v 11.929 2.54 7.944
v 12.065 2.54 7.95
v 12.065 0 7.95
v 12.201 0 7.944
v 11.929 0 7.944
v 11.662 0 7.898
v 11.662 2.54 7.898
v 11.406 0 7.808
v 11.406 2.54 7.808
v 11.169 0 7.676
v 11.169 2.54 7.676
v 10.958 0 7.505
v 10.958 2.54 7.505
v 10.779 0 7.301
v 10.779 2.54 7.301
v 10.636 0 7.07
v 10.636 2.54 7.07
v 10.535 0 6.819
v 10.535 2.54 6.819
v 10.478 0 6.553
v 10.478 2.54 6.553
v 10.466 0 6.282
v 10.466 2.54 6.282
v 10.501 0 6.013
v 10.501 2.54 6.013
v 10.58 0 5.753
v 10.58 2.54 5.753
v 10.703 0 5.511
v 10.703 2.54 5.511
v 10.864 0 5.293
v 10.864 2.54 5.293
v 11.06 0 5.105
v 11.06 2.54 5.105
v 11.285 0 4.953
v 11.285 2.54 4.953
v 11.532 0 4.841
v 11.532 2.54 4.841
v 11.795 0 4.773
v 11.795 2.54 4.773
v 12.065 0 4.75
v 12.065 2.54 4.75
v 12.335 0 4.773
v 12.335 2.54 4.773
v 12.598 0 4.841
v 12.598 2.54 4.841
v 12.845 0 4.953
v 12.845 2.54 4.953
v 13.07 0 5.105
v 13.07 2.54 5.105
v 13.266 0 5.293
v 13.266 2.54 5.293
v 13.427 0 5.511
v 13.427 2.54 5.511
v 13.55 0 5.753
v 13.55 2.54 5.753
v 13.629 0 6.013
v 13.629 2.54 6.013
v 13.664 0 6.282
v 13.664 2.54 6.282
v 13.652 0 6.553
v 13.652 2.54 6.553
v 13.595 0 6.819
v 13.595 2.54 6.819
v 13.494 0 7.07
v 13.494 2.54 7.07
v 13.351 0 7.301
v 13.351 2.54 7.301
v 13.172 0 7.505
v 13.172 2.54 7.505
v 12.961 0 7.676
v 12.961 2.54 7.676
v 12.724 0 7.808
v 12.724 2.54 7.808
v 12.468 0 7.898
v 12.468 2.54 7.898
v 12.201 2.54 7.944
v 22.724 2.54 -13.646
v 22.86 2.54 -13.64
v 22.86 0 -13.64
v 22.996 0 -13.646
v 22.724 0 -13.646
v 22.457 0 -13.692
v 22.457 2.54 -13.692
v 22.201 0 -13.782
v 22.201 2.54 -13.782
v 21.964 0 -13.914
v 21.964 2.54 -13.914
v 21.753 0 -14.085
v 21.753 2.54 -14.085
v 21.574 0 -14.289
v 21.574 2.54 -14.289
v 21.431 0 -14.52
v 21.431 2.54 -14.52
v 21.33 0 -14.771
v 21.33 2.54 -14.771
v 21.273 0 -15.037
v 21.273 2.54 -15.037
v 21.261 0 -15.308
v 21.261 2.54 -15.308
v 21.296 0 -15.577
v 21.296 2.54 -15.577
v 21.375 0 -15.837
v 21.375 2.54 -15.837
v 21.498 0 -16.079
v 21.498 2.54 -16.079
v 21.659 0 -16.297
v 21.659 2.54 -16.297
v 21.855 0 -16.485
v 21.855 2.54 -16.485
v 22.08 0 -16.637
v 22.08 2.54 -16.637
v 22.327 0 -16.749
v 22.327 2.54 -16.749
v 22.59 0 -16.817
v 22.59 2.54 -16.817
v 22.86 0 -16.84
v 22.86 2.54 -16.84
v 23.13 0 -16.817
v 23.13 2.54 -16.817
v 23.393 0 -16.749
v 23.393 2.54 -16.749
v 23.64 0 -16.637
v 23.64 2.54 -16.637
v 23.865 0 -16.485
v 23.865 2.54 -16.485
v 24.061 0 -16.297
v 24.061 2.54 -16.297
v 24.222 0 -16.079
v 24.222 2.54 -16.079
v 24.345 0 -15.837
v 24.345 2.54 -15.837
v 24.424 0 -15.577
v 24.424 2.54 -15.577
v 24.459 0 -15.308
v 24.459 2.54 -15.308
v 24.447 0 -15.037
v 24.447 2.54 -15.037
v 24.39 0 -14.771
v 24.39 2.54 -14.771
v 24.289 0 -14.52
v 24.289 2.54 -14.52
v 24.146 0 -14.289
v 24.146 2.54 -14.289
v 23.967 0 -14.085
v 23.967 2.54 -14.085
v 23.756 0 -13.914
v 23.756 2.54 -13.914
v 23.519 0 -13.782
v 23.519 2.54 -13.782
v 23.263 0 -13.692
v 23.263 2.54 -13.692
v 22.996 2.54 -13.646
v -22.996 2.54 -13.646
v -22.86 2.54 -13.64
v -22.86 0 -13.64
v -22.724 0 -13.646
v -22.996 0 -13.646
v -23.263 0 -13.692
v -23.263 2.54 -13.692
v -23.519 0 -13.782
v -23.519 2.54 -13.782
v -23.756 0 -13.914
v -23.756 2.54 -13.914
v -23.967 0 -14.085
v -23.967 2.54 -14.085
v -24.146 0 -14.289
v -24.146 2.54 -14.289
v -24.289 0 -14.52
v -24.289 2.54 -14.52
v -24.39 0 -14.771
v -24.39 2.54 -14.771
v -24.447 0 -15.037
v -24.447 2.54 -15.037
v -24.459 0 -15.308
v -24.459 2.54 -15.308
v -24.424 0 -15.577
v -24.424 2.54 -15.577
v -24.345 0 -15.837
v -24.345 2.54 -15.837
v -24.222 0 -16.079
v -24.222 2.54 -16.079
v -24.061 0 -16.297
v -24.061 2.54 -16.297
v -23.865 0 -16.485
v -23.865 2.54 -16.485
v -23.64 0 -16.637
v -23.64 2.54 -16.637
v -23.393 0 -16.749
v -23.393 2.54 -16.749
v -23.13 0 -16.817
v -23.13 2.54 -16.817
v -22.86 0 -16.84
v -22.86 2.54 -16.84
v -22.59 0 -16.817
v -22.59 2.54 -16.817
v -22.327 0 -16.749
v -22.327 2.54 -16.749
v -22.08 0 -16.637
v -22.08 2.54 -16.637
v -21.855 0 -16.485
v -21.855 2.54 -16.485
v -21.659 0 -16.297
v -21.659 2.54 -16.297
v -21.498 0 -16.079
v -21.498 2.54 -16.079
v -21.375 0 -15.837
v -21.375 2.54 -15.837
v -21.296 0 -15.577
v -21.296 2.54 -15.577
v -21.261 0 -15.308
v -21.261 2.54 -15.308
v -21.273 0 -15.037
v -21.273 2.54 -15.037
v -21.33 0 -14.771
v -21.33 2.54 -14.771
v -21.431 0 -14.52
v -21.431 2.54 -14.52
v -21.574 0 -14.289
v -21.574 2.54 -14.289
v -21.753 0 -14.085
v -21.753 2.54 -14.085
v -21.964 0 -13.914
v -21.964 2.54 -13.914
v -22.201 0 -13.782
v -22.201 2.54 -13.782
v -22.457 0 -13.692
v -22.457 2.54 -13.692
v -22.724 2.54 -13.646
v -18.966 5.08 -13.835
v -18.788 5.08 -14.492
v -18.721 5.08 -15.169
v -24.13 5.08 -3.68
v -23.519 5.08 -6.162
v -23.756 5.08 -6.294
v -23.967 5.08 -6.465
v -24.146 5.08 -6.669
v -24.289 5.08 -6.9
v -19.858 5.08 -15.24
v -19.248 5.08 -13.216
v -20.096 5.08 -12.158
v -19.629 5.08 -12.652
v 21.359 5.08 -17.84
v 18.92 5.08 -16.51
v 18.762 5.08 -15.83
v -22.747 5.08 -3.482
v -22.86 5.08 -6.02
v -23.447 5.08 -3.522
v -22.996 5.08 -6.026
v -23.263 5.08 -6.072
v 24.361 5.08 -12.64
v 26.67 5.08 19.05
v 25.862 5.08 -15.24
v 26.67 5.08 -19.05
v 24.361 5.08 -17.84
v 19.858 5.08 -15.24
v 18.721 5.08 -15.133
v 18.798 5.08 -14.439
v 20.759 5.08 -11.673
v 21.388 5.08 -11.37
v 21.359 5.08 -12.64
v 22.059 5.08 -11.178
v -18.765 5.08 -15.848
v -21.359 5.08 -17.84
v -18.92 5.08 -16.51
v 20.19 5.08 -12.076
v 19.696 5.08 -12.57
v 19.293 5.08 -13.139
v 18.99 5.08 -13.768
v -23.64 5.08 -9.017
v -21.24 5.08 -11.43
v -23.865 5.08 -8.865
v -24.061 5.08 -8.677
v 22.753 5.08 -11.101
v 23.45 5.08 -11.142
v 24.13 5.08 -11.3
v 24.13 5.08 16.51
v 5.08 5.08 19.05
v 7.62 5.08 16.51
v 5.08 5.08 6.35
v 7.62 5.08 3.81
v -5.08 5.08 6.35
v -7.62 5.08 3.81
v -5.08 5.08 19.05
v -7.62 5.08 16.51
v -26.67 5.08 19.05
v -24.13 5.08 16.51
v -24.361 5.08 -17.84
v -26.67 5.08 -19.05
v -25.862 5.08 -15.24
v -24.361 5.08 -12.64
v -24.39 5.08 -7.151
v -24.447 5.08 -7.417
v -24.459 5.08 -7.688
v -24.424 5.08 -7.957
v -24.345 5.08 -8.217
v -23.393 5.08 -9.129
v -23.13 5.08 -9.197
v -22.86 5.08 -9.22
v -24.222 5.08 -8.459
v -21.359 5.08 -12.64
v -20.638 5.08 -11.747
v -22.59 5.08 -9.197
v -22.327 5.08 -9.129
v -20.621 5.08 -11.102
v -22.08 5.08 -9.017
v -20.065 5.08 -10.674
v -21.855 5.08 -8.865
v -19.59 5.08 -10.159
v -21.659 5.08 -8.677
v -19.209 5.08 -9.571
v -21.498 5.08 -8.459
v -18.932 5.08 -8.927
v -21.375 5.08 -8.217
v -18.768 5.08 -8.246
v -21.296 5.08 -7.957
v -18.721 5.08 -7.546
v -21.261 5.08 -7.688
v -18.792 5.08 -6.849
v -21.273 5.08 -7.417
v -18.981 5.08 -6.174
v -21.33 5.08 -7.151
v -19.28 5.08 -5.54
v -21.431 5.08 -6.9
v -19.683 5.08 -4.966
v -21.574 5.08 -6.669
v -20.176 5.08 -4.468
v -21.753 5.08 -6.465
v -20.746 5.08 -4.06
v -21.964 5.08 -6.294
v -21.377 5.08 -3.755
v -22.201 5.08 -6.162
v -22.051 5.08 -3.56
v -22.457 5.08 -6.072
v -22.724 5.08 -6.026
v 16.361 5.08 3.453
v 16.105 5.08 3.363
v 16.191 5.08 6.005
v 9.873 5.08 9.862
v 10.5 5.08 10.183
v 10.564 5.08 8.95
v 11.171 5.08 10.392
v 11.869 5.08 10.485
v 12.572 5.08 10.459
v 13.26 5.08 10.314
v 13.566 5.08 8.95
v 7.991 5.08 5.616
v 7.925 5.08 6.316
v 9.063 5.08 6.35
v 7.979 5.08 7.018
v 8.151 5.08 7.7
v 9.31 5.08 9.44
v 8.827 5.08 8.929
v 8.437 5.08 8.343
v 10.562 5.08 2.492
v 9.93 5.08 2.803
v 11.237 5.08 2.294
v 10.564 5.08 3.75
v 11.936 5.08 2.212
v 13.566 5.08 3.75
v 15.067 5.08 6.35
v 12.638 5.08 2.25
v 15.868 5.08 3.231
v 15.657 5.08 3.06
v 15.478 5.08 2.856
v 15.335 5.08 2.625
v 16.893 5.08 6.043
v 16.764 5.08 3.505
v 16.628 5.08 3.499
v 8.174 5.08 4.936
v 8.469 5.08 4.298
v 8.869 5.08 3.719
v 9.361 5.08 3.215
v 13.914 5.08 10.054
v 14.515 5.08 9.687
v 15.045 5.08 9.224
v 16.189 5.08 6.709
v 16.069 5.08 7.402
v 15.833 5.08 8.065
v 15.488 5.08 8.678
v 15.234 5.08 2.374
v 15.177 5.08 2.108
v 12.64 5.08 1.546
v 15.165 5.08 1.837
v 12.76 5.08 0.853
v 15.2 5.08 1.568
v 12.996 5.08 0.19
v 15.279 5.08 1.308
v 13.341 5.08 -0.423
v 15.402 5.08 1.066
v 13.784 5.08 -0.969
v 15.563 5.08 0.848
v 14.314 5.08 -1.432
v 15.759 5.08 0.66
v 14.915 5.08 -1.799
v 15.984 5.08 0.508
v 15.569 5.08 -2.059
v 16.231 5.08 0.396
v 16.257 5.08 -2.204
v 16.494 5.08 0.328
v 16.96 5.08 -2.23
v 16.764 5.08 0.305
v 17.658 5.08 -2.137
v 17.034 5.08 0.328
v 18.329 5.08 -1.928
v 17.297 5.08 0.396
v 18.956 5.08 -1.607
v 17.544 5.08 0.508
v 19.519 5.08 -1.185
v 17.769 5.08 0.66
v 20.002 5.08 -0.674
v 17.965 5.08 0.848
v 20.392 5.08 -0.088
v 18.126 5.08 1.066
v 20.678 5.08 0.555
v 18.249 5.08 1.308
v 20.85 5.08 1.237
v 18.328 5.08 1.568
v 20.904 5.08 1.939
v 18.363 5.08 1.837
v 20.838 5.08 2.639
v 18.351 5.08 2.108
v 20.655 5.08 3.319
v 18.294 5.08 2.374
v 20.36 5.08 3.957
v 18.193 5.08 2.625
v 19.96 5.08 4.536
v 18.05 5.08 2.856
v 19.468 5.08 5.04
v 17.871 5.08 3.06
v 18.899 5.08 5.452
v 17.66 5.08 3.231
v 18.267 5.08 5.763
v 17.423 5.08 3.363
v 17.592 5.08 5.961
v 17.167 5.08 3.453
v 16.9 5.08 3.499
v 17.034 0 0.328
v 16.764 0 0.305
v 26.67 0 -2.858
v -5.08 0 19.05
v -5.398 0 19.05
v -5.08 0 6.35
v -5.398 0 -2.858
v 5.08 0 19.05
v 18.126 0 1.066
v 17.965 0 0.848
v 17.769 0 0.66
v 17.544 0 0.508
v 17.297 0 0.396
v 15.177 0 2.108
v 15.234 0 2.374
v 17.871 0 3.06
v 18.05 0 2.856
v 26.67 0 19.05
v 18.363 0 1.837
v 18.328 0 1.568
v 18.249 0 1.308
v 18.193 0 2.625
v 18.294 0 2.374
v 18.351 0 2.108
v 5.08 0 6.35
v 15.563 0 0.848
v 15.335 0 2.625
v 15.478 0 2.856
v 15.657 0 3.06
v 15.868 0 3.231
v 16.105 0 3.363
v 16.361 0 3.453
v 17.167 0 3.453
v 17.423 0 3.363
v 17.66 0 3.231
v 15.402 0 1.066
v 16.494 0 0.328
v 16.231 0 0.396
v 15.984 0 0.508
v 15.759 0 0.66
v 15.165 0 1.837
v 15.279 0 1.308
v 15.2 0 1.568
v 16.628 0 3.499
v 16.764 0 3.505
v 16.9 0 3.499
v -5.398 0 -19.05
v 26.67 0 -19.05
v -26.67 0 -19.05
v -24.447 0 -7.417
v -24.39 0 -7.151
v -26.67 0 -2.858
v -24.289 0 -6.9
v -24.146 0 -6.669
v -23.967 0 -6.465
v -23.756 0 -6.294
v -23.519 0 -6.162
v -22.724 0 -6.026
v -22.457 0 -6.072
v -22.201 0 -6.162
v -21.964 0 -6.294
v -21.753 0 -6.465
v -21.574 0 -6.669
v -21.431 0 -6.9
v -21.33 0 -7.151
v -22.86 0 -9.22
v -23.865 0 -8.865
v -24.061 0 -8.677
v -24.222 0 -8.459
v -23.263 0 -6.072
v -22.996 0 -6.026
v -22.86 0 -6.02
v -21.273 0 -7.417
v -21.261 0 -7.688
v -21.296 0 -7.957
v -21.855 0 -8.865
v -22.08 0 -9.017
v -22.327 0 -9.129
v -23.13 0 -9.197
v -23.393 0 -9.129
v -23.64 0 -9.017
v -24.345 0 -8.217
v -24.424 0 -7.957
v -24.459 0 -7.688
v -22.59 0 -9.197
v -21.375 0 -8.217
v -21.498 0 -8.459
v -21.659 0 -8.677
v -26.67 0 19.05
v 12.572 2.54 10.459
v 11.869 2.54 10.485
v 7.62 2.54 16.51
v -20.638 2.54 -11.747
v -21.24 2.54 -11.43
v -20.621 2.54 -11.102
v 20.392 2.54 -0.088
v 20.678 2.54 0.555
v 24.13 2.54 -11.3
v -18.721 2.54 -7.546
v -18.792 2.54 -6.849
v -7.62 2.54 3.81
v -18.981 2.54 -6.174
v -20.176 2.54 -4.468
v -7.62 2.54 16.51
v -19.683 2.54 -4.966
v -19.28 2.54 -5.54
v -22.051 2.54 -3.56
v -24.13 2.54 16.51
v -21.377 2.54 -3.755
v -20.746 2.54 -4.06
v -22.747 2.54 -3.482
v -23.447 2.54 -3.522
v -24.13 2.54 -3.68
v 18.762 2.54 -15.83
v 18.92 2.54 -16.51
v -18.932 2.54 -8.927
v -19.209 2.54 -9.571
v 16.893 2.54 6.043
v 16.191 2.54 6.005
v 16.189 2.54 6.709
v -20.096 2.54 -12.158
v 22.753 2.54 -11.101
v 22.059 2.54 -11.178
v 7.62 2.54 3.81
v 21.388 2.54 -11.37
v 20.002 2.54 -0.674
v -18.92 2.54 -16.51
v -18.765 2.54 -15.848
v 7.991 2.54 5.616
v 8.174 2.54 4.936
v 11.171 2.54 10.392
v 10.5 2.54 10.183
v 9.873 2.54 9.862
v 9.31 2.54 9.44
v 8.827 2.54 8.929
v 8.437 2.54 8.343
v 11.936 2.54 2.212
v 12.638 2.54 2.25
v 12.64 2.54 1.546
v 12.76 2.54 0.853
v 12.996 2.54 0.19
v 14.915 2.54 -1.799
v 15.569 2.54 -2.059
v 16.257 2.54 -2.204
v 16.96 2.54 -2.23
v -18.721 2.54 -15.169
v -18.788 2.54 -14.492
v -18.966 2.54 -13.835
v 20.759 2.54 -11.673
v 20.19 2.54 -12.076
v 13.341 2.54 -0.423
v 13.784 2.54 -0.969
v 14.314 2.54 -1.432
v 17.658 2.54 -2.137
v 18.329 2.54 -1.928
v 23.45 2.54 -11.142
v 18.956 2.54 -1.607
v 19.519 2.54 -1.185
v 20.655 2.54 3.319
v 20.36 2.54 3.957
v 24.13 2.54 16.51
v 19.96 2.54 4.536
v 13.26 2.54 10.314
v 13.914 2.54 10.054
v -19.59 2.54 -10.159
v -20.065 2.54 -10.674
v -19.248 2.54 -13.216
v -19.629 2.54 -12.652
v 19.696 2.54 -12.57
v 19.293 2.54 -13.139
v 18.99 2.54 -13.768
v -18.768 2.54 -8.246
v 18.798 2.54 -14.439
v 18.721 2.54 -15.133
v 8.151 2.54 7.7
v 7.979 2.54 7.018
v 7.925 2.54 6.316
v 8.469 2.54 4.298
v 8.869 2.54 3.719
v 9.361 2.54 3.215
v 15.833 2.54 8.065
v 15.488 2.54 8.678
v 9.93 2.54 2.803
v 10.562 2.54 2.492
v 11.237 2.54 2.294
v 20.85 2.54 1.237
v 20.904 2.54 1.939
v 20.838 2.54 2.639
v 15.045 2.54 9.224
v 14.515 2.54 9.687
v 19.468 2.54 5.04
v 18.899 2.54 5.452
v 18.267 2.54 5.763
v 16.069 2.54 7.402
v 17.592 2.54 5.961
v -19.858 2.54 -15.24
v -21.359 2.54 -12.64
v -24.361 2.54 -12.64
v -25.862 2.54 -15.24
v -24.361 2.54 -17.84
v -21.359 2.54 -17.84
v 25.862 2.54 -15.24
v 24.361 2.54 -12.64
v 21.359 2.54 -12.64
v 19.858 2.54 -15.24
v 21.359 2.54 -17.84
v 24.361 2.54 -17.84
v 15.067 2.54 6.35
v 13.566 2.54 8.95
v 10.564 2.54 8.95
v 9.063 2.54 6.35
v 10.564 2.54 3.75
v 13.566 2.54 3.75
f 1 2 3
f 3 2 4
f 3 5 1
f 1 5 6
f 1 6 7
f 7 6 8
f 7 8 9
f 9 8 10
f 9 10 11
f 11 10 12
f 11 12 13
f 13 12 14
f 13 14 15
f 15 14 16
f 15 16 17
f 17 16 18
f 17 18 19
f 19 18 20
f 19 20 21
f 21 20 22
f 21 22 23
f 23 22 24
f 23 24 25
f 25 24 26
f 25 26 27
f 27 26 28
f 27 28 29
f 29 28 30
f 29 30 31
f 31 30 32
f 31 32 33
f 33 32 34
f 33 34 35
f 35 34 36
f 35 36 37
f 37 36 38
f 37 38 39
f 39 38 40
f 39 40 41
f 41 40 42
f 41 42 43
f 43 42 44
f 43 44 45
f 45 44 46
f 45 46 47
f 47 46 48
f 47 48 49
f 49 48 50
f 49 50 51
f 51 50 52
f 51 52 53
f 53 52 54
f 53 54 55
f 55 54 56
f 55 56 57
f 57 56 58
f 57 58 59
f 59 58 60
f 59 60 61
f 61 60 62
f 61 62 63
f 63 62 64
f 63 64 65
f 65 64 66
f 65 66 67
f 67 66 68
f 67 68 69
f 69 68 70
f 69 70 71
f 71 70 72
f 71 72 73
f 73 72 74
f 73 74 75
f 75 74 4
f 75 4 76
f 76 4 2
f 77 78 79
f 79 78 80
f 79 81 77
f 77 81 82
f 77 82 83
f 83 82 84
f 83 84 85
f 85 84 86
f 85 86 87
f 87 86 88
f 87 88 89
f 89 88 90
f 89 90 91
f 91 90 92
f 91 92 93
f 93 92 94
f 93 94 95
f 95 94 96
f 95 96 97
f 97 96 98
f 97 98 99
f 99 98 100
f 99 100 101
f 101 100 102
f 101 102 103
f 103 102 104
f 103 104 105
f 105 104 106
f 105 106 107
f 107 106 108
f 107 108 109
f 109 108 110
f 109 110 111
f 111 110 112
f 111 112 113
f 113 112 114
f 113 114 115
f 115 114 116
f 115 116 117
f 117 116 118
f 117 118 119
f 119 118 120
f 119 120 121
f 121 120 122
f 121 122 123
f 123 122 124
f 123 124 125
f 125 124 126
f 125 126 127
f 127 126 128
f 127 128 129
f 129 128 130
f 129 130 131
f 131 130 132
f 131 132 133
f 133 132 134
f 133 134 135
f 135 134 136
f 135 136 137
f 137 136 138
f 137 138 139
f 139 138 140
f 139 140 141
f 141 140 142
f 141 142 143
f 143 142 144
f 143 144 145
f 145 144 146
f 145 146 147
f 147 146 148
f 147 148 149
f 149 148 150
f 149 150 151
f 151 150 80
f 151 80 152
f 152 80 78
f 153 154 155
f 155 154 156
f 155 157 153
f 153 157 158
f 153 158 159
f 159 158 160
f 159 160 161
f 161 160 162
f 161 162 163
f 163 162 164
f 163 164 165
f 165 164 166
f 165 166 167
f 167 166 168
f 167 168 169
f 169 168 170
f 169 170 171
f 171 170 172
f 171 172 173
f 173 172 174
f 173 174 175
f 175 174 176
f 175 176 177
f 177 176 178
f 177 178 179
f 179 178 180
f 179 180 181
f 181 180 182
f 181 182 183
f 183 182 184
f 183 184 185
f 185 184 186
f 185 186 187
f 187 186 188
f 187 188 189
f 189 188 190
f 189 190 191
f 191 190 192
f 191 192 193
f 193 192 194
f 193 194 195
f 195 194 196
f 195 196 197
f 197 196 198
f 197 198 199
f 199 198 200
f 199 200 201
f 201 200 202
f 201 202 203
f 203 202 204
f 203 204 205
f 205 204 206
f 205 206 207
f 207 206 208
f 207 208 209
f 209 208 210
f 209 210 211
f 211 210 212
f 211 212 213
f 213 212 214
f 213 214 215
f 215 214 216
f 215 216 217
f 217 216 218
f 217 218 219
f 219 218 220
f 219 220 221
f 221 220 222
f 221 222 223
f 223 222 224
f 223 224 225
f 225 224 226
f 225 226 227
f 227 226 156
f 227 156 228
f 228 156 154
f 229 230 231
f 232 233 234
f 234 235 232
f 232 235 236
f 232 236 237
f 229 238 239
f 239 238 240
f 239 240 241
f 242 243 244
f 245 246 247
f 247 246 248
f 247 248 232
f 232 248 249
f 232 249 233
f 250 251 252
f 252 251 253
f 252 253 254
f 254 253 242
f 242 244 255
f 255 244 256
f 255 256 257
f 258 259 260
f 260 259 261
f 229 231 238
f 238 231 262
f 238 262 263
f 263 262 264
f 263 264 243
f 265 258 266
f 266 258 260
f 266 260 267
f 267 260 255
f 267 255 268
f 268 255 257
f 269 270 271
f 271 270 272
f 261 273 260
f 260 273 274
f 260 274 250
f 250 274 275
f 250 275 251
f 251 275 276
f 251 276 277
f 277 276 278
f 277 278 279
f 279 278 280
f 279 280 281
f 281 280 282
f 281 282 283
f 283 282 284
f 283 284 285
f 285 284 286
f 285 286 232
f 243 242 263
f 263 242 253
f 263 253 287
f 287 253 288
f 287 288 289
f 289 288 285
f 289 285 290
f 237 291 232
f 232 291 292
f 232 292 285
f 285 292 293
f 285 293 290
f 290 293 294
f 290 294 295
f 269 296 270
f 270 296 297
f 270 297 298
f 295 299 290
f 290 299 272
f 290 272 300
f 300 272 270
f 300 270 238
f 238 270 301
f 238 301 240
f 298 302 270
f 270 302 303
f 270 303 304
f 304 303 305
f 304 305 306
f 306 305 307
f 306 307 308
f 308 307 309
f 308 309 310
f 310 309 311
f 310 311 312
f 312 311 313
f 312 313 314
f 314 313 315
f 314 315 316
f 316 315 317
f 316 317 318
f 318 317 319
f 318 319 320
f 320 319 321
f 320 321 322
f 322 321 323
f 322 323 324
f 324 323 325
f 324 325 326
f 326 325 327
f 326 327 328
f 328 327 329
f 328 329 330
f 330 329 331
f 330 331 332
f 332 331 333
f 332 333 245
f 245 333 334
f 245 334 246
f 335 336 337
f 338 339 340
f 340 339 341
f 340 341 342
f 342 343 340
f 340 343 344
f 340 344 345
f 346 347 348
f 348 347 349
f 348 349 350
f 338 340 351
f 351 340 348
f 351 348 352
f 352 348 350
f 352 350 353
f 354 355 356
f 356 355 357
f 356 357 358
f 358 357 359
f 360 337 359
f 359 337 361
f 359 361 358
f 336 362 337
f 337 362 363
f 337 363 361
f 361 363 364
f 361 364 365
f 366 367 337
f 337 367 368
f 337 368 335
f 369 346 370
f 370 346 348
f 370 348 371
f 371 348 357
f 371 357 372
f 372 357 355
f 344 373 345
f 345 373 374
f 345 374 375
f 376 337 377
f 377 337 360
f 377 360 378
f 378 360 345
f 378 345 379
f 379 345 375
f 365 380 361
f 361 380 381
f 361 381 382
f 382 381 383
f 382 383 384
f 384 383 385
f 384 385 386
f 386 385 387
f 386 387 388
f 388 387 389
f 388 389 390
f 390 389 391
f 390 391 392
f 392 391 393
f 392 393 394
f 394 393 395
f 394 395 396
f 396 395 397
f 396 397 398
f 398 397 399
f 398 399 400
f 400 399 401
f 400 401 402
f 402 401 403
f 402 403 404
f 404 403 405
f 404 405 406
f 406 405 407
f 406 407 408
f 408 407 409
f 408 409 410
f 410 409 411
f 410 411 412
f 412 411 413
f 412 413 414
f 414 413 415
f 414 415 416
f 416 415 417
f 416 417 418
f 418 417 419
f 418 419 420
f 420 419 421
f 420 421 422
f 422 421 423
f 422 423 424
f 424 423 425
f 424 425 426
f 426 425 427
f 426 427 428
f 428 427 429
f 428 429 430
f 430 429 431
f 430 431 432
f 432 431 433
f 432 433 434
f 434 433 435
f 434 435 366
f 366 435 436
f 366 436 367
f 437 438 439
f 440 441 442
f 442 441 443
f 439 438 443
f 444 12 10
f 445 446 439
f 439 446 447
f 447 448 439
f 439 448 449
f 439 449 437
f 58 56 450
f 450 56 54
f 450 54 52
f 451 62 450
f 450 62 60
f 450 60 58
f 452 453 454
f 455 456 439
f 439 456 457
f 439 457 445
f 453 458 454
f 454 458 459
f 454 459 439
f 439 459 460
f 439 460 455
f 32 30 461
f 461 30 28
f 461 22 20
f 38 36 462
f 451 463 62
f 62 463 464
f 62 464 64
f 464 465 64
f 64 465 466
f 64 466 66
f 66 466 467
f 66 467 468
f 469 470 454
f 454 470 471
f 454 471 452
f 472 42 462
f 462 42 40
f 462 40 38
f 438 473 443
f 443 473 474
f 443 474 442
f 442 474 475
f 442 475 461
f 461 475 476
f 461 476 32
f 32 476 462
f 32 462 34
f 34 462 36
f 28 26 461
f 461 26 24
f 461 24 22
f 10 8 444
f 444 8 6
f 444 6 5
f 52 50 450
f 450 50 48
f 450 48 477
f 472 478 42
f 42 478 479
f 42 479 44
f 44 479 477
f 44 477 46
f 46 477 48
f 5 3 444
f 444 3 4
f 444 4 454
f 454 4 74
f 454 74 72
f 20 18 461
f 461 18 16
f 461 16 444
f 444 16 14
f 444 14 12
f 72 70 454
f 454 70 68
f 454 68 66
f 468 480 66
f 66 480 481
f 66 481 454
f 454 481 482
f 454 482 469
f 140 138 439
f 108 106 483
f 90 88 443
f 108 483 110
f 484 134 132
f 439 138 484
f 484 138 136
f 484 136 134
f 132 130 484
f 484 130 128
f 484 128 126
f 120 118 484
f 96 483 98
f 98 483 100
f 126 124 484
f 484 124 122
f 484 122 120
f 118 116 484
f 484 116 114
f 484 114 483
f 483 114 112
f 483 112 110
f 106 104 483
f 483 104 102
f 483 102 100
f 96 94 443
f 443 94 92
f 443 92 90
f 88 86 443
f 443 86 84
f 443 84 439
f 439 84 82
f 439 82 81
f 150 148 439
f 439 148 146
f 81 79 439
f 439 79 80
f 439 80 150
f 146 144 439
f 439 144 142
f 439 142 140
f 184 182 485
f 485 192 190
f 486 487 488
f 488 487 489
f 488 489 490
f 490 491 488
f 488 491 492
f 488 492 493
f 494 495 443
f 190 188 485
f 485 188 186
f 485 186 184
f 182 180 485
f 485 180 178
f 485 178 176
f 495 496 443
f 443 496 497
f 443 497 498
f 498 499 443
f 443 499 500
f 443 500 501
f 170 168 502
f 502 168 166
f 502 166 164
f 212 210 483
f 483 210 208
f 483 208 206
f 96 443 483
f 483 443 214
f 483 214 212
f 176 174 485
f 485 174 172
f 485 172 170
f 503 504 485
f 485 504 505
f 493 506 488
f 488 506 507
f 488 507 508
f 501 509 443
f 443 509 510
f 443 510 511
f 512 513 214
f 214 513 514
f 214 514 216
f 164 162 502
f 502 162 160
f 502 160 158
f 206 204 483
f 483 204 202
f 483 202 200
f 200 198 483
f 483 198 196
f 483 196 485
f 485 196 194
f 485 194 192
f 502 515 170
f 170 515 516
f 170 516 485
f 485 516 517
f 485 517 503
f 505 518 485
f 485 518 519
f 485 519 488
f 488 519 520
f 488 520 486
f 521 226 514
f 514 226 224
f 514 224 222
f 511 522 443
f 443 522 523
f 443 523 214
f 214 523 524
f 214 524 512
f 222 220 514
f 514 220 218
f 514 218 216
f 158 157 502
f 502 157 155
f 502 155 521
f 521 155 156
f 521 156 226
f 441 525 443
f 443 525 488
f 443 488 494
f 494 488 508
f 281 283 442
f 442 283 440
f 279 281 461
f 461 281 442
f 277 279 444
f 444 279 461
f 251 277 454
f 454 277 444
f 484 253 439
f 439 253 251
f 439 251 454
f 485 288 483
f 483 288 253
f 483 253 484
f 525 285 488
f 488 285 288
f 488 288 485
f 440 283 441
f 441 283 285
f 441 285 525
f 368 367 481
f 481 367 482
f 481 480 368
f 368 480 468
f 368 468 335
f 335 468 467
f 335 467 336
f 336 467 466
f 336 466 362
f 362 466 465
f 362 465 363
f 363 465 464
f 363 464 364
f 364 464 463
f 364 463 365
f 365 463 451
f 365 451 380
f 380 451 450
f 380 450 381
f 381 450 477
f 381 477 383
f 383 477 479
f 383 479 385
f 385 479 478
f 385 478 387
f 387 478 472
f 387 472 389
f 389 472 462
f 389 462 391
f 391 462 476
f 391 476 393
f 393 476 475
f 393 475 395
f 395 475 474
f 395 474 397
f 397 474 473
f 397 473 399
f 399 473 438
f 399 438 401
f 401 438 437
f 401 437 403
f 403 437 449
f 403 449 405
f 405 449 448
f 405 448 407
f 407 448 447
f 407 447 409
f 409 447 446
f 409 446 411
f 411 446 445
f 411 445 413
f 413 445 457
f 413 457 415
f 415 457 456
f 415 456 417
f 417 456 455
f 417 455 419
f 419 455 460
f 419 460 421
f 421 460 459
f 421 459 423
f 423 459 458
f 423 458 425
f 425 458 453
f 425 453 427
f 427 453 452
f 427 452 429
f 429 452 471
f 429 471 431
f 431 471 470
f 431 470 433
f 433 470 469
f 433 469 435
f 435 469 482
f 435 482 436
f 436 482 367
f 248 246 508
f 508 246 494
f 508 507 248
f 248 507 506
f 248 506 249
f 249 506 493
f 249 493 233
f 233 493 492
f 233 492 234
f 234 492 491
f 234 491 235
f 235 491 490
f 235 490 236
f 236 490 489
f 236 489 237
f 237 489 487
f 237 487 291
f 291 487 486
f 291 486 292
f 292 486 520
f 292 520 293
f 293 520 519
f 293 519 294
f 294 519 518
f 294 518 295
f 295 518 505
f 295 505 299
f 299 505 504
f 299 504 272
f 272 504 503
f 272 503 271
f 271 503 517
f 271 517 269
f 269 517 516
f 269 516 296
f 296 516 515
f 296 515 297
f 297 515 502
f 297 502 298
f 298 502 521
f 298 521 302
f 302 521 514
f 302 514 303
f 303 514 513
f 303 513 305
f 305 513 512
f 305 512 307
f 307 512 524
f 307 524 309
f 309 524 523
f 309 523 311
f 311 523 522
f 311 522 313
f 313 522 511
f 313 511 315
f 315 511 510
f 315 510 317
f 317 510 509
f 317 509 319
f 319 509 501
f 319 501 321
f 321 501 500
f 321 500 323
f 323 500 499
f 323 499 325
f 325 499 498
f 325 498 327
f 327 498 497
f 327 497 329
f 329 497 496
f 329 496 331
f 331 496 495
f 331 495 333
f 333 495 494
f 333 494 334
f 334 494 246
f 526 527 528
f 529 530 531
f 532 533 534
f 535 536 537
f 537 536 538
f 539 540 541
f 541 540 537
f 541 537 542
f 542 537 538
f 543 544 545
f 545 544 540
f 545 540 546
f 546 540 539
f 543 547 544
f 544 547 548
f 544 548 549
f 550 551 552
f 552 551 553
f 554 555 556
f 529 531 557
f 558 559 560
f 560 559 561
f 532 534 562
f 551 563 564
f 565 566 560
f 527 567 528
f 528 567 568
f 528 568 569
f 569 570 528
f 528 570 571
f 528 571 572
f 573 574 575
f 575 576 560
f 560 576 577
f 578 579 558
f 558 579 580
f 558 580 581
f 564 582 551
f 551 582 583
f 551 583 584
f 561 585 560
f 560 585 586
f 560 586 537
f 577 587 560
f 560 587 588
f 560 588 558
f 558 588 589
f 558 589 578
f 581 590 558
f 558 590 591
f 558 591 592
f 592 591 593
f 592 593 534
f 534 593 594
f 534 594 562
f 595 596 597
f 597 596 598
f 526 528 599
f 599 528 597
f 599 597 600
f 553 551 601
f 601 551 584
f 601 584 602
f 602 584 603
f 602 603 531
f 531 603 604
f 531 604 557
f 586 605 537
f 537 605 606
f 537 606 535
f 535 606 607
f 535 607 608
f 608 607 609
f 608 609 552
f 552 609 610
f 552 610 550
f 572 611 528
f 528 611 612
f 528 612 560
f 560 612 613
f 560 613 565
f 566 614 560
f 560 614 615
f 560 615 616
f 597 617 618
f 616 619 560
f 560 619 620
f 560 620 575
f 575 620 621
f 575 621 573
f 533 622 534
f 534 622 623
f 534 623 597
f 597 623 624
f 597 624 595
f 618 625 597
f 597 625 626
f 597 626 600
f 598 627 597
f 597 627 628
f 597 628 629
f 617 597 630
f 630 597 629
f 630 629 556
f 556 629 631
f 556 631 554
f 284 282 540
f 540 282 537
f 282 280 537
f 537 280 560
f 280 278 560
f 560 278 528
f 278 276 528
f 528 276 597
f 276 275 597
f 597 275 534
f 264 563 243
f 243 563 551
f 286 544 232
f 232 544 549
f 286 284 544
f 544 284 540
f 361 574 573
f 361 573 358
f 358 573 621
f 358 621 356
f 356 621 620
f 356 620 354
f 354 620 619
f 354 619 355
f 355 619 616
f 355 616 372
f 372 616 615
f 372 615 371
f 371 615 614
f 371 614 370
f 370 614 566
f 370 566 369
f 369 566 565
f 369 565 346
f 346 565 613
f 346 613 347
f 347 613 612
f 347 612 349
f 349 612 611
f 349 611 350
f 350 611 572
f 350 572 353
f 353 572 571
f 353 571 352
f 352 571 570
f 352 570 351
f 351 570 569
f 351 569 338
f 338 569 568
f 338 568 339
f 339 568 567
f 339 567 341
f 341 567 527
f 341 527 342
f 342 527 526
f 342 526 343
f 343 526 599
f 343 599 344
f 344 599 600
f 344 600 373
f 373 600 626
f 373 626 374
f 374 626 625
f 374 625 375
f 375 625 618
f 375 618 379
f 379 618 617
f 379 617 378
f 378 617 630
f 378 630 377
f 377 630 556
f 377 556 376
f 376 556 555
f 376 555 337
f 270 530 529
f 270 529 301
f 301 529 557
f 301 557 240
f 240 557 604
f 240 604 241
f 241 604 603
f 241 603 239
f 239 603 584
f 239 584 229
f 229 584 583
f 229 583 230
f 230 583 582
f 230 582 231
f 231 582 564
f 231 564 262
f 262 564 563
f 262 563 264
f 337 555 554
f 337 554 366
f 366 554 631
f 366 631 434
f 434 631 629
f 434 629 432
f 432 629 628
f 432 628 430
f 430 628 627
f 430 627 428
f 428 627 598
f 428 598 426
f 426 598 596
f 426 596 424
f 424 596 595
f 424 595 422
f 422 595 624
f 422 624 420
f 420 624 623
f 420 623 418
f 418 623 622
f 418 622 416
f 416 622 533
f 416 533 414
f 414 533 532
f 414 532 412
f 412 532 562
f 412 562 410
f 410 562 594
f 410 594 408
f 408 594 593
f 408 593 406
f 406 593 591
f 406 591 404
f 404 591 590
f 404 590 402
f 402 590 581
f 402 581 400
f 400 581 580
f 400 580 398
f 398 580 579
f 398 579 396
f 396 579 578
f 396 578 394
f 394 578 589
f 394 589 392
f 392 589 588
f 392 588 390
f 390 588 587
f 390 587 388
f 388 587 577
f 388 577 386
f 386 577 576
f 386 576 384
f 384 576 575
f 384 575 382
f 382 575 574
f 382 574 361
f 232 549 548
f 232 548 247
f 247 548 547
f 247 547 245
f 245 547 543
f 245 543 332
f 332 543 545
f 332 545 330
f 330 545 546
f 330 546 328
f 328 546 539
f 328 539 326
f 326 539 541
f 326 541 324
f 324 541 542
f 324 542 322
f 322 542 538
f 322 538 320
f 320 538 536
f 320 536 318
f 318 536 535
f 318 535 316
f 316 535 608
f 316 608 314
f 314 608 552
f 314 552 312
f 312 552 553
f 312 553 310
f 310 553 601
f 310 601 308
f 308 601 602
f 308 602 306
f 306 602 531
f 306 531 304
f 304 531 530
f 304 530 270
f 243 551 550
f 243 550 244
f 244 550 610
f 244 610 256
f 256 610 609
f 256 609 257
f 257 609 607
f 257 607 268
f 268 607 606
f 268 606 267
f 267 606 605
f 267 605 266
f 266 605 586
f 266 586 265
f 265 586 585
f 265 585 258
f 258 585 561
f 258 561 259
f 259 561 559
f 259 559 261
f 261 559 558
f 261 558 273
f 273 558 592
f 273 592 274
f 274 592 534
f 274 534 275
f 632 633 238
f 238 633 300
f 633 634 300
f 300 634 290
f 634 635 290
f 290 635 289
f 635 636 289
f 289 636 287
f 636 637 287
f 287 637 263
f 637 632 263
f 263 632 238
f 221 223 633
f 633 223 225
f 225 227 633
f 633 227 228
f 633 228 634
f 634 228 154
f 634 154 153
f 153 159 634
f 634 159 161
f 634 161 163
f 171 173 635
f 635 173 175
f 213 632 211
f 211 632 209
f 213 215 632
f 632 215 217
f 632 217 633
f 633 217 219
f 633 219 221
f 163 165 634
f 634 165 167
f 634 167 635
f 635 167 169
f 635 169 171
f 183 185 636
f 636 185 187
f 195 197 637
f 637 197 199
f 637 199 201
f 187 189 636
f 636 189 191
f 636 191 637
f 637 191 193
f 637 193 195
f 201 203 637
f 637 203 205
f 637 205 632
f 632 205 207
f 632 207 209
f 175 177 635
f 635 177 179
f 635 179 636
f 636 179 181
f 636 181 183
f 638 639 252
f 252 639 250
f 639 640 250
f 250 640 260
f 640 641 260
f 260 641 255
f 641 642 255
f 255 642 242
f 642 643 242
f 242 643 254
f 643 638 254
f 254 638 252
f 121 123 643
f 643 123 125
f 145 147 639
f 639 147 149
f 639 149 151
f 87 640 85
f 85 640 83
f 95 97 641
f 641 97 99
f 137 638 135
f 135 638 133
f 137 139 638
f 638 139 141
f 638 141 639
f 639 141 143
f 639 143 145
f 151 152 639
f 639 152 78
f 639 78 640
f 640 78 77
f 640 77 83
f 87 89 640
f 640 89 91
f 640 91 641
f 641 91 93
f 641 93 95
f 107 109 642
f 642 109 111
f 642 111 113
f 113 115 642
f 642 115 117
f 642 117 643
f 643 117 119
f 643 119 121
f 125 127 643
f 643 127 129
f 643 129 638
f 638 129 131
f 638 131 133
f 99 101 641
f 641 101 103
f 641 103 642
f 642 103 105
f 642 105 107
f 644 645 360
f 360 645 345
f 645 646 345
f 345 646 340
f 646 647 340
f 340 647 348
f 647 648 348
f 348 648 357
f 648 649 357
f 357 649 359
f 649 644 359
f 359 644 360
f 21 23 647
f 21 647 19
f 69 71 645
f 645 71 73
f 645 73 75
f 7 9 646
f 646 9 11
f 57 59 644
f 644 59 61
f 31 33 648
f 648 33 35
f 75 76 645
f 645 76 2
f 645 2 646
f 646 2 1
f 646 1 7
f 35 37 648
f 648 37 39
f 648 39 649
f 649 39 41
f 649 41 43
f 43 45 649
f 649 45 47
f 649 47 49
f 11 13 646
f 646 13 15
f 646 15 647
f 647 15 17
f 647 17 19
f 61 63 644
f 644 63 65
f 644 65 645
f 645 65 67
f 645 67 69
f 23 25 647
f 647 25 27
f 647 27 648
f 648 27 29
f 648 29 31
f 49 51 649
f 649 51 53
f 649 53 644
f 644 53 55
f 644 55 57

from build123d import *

# Parameters (mm, degrees)
SKETCH1_R           = 1.6
BOSS_EXTRUDE1_DEPTH = 5.08
SHELL1_START        = 2.54
SHELL1_DEPTH        = 2.54
CUT_EXTRUDE1_DEPTH  = 2.54


# Read off the part's stored shape, not the designer's step: Shell1
with BuildPart() as part:
    # Sketch1 → Boss-Extrude1 (new body)
    with BuildSketch(Plane(origin=(0, 0, 0), x_dir=(1, 0, 0), z_dir=(0, 1, 0))):
        Polygon((-5.08, -6.35), (5.08, -6.35), (5.08, -19.05), (26.67, -19.05), (26.67, 19.05), (-26.67, 19.05), (-26.67, -19.05), (-5.08, -19.05), align=None)
        with Locations(Location((12.065, -6.35, 0), (0, 0, 270))):
            Circle(SKETCH1_R, mode=Mode.SUBTRACT)
        with Locations(Location((-22.86, 15.24, 0), (0, 0, 270))):
            Circle(SKETCH1_R, mode=Mode.SUBTRACT)
        with Locations(Location((16.764, -1.905, 0), (0, 0, 270))):
            Circle(SKETCH1_R, mode=Mode.SUBTRACT)
        with Locations(Location((-22.86, 7.62, 0), (0, 0, 270))):
            Circle(SKETCH1_R, mode=Mode.SUBTRACT)
        with Locations(Location((22.86, 15.24, 0), (0, 0, 270))):
            Circle(SKETCH1_R, mode=Mode.SUBTRACT)
    extrude(amount=BOSS_EXTRUDE1_DEPTH)

    # Shell1 outline → Shell1 (cut)
    with BuildSketch(Plane(origin=(0, 0, 0), x_dir=(1, 0, 0), z_dir=(0, 1, 0)).offset(SHELL1_START)):
        with BuildLine():
            Line((-7.62, -16.51), (-7.62, -3.81))
            Line((-7.62, -3.81), (7.62, -3.81))
            Line((7.62, -3.81), (7.62, -16.51))
            Line((7.62, -16.51), (24.13, -16.51))
            Line((24.13, -16.51), (24.13, 11.299606619))
            ThreePointArc((24.13, 11.299606619), (19.932577926, 12.312577926), (18.919606619, 16.51))
            Line((18.919606619, 16.51), (-18.919606619, 16.51))
            ThreePointArc((-18.919606619, 16.51), (-19.094323259, 13.519744587), (-21.240277802, 11.43))
            ThreePointArc((-21.240277802, 11.43), (-18.980860173, 6.173668709), (-24.13, 3.679606619))
            Line((-24.13, 3.679606619), (-24.13, -16.51))
            Line((-24.13, -16.51), (-7.62, -16.51))
        make_face()
        with BuildLine():
            ThreePointArc((12.638391662, -2.249899757), (19.771579246, 0.940007395), (16.190608338, -6.005100243))
            ThreePointArc((16.190608338, -6.005100243), (9.057420754, -9.195007395), (12.638391662, -2.249899757))
        make_face(mode=Mode.SUBTRACT)
    extrude(amount=SHELL1_DEPTH, mode=Mode.SUBTRACT)

    # Sketch8 → Cut-Extrude1 (cut)
    with BuildSketch(Plane(origin=(0, 5.08, 0), x_dir=(1, 0, 0), z_dir=(0, 1, 0))):
        Polygon((-19.8577786, 15.24), (-21.3588893, 17.84), (-24.3611107, 17.84), (-25.8622214, 15.24), (-24.3611107, 12.64), (-21.3588893, 12.64), align=None)
        Polygon((25.8622214, 15.24), (24.3611107, 17.84), (21.3588893, 17.84), (19.8577786, 15.24), (21.3588893, 12.64), (24.3611107, 12.64), align=None)
        Polygon((15.0672214, -6.35), (13.5661107, -3.75), (10.5638893, -3.75), (9.0627786, -6.35), (10.5638893, -8.95), (13.5661107, -8.95), align=None)
    extrude(amount=-CUT_EXTRUDE1_DEPTH, mode=Mode.SUBTRACT)


solid = part.part
